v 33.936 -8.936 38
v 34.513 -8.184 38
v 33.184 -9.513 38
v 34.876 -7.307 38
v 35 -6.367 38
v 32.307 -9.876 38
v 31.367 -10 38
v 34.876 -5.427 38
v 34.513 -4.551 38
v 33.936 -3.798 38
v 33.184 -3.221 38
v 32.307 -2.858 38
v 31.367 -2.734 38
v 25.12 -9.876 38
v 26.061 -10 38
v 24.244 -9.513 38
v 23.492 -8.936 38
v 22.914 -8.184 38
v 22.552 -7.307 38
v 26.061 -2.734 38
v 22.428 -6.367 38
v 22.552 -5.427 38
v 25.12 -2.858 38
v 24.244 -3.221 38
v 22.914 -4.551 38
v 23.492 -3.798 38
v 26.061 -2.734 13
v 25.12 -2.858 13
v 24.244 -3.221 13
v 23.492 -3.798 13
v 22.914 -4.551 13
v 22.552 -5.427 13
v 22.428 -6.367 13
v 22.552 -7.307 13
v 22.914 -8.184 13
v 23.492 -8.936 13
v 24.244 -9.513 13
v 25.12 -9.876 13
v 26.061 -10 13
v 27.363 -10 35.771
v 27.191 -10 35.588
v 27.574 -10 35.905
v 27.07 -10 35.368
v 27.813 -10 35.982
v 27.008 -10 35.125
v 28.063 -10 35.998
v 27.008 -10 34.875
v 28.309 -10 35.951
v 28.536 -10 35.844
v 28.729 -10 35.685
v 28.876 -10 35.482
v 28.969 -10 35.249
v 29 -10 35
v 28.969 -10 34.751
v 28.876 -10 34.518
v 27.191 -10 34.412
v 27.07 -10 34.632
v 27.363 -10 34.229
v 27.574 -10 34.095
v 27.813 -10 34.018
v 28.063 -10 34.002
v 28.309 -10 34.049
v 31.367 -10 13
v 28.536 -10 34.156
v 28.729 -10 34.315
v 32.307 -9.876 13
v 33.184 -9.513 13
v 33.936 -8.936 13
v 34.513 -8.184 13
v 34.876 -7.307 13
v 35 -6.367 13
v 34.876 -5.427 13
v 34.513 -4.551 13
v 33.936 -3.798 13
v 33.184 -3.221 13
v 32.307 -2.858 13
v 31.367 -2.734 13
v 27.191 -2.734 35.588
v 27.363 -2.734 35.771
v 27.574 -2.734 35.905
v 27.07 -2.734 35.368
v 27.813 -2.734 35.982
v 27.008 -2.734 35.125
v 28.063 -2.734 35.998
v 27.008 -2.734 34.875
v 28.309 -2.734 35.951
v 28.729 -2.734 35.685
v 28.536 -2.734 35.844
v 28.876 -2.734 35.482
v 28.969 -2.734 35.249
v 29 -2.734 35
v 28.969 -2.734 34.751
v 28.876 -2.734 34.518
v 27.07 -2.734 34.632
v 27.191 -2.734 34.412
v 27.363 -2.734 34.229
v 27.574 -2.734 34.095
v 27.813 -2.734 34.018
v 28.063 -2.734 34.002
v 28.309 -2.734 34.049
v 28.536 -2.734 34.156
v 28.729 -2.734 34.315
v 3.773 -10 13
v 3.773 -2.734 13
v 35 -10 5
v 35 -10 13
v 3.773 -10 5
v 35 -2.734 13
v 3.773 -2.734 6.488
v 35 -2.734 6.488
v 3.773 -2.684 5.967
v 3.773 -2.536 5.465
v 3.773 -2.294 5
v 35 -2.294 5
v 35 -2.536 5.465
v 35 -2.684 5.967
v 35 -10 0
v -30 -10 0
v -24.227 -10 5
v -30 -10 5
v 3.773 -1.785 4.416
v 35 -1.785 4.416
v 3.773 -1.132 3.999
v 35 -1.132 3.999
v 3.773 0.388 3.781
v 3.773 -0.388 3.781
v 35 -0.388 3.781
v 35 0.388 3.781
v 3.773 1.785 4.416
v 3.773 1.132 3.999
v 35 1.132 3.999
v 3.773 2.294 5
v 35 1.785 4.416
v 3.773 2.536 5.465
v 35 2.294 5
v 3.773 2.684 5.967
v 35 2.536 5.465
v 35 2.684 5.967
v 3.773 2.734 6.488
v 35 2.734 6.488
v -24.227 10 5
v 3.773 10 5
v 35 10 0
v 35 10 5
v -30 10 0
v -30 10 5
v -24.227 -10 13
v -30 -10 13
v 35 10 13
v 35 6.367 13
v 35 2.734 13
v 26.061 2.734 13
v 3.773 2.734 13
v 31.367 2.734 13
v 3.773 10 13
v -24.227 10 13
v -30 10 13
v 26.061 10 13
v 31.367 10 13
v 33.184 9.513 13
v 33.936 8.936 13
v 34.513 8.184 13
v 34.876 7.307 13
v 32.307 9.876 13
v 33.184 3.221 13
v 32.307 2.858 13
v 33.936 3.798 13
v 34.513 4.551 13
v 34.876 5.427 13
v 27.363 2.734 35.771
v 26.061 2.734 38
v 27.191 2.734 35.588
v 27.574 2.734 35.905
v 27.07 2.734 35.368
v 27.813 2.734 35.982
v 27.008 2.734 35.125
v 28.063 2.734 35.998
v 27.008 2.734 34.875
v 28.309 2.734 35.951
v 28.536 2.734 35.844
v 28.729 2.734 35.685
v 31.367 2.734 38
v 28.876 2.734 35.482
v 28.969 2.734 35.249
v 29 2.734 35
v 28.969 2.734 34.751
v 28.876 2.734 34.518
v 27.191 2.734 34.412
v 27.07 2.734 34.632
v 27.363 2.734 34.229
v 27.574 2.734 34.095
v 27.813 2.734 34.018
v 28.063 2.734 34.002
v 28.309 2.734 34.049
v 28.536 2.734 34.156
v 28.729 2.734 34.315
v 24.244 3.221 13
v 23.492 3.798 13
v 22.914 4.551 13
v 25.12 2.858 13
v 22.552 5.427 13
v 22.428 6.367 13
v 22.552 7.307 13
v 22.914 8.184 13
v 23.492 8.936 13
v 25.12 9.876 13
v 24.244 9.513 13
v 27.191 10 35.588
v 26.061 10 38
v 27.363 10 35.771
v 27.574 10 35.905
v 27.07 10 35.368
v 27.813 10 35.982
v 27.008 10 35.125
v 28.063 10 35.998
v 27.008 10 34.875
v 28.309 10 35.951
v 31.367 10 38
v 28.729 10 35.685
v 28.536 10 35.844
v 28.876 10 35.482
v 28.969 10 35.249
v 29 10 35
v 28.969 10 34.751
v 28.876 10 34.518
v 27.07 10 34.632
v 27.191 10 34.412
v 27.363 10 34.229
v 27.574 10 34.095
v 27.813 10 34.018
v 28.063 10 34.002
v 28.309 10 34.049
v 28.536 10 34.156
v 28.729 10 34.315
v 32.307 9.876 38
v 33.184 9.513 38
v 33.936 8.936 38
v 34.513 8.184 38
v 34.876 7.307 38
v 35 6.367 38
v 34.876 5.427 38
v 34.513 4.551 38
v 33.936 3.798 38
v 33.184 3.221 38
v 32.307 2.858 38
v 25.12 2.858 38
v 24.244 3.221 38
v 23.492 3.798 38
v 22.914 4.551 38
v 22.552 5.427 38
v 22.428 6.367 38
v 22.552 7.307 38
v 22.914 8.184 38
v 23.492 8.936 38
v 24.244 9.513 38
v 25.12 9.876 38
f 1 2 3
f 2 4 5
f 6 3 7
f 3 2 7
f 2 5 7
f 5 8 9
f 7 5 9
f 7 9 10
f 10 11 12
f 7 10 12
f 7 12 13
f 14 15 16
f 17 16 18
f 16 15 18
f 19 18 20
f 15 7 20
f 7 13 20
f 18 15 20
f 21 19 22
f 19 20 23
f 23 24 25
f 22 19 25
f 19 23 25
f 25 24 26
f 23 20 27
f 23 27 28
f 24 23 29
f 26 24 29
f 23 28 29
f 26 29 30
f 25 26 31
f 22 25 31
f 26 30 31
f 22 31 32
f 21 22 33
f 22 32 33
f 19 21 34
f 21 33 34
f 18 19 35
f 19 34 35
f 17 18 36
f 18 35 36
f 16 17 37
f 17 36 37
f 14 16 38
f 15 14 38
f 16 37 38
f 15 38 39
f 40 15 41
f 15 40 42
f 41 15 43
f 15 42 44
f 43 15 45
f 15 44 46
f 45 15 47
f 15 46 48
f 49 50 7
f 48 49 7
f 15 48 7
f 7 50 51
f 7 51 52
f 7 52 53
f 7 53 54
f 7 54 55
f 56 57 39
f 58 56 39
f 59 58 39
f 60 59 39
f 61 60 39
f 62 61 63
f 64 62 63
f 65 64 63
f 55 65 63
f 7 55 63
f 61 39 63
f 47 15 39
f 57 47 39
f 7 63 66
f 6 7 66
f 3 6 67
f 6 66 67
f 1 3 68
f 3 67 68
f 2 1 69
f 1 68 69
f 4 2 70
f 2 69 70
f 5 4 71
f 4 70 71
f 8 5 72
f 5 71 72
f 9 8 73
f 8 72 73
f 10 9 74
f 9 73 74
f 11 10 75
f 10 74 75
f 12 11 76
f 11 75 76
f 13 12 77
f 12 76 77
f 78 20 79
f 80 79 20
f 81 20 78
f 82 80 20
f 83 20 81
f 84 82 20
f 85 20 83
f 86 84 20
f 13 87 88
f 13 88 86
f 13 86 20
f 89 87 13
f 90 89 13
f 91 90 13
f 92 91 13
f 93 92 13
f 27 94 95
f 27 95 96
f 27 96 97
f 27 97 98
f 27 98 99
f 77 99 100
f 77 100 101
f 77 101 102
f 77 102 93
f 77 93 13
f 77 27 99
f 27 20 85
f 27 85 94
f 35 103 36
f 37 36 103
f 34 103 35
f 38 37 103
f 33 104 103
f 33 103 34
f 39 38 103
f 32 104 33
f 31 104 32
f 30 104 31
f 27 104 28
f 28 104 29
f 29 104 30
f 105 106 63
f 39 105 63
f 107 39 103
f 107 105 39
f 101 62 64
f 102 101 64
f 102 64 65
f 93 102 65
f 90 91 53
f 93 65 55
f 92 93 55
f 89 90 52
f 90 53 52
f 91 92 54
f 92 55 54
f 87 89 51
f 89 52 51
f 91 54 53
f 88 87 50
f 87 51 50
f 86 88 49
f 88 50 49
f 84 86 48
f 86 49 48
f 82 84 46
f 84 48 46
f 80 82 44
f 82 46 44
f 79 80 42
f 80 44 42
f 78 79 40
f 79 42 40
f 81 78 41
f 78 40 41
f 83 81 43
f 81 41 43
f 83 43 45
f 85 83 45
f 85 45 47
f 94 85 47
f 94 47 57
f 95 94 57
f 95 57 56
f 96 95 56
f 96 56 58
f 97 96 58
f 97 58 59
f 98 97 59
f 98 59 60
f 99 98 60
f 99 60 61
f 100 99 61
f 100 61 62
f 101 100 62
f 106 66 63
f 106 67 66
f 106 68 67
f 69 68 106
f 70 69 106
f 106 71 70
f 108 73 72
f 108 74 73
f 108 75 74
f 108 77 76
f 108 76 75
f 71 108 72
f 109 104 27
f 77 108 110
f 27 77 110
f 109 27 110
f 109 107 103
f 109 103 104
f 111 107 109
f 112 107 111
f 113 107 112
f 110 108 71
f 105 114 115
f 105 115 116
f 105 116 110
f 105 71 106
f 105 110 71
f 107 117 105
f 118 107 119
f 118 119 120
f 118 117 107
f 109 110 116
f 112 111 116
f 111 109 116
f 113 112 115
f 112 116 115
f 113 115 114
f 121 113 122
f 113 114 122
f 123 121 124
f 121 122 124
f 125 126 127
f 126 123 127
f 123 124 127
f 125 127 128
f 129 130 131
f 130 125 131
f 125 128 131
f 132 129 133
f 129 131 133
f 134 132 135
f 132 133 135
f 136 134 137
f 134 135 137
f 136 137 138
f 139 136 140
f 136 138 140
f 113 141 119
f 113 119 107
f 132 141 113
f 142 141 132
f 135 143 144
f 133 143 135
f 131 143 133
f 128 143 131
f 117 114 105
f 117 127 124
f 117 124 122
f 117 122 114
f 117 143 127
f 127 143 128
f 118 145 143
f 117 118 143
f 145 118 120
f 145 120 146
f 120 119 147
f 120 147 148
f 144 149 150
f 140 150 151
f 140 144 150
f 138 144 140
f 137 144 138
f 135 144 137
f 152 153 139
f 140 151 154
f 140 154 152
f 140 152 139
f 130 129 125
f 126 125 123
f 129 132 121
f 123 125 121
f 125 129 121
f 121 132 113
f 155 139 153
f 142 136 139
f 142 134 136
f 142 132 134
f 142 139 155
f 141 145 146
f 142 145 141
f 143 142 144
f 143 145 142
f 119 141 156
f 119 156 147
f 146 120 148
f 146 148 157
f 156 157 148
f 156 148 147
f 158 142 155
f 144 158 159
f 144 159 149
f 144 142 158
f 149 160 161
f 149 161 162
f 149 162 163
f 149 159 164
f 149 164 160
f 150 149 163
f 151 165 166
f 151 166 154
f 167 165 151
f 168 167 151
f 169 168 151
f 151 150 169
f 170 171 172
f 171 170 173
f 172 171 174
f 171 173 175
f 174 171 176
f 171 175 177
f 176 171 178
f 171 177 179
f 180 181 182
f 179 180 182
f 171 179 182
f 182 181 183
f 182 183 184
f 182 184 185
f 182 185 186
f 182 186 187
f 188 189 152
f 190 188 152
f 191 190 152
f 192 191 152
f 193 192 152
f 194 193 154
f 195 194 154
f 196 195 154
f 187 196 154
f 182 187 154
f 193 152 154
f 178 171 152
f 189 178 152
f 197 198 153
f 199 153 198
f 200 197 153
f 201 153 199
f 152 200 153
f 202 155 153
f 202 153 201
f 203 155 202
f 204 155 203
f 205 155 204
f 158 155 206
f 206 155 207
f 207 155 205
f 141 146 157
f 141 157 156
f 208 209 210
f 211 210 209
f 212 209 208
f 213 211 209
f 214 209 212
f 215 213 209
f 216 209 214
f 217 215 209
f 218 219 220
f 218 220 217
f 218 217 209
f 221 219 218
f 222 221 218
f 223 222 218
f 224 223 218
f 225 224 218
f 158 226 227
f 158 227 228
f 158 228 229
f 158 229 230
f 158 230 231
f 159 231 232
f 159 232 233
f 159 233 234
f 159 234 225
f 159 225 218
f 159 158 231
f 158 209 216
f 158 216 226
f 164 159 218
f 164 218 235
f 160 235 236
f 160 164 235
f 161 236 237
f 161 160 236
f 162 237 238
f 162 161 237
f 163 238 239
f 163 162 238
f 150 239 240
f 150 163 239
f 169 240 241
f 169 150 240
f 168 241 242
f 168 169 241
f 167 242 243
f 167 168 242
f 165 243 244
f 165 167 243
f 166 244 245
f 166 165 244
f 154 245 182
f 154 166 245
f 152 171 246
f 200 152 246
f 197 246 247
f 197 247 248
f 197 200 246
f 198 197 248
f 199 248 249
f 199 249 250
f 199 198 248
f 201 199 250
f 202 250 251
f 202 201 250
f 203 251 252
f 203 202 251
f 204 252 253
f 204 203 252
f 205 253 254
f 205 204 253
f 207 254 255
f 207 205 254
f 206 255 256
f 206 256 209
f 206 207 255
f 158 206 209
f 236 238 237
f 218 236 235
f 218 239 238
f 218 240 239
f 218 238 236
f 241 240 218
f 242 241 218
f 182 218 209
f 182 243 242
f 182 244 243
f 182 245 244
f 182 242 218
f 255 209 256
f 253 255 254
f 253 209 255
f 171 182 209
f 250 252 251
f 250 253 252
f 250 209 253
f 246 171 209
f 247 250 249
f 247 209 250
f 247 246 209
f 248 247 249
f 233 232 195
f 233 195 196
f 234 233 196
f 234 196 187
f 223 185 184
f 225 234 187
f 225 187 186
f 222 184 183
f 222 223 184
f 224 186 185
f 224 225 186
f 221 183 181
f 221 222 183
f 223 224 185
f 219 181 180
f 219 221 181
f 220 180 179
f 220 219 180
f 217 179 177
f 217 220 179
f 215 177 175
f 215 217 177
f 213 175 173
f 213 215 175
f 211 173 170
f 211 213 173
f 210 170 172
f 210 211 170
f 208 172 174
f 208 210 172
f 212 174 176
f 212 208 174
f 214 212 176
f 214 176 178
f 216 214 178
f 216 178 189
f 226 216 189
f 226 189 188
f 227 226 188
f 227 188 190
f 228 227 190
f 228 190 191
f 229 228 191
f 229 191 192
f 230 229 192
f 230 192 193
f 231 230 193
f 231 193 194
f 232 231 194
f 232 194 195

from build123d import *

# Parameters (mm, degrees)
SKETCH_W        = 65
SKETCH_H        = 20
PAD_DEPTH       = 5
SKETCH001_W     = 31.226576
SKETCH001_H     = 20
SKETCH001_W_2   = 5.773424
PAD001_DEPTH    = 8
POCKET_DEPTH    = 31.226576
PAD002_DEPTH    = 25
SKETCH003_R     = 1
POCKET001_DEPTH = 20.001


with BuildPart() as pocket001:
    # Sketch → Pad (new body)
    with BuildSketch(Plane.XY):
        with Locations((2.5, 0)):
            Rectangle(SKETCH_W, SKETCH_H)
    extrude(amount=PAD_DEPTH)

    # Sketch001 → Pad001 (new body)
    with BuildSketch(Plane.XY.offset(5)):
        with Locations((19.386712, 0)):
            Rectangle(SKETCH001_W, SKETCH001_H)
        with Locations((-27.113288, 0)):
            Rectangle(SKETCH001_W_2, SKETCH001_H)
    extrude(amount=PAD001_DEPTH)

    # Sketch002 → Pocket (cut)
    with BuildSketch(Plane.YZ.offset(35)):
        with BuildLine():
            Line((-2.73443, 15), (-2.73443, 6.487833))
            ThreePointArc((-2.73443, 6.487833), (0, 3.753403), (2.73443, 6.487833))
            Line((2.73443, 15), (2.73443, 6.487833))
            Line((-2.73443, 15), (2.73443, 15))
        make_face()
    extrude(amount=-POCKET_DEPTH, mode=Mode.SUBTRACT)

    # Sketch004 → Pad002 (new body)
    with BuildSketch(Plane.XY.offset(13)):
        with BuildLine():
            ThreePointArc((26.060559, -2.73443), (22.427774, -6.367215), (26.060559, -10))
            Line((26.060559, -10), (31.367215, -10))
            ThreePointArc((31.367215, -10), (35, -6.367215), (31.367215, -2.73443))
            Line((26.060559, -2.73443), (31.367215, -2.73443))
        make_face()
    extrude(amount=PAD002_DEPTH)

    # Sketch003 → Pocket001 (cut, through all)
    with BuildSketch(Plane.XZ.offset(10)):
        with Locations((28, 35)):
            Circle(SKETCH003_R)
    extrude(amount=-POCKET001_DEPTH, mode=Mode.SUBTRACT)


with BuildPart() as part_mirroring:
    # Part__Mirroring: instance of Pocket001
    add(pocket001.part.mirror(Plane(origin=(0, 0, 0), x_dir=(1, 0, 0), z_dir=(0, 1, 0))))


with BuildPart() as fusion:
    # Fusion base: copy of Pocket001
    add(pocket001.part)

    # Fusion: union Part__Mirroring
    add(part_mirroring.part)


solid = fusion.part
